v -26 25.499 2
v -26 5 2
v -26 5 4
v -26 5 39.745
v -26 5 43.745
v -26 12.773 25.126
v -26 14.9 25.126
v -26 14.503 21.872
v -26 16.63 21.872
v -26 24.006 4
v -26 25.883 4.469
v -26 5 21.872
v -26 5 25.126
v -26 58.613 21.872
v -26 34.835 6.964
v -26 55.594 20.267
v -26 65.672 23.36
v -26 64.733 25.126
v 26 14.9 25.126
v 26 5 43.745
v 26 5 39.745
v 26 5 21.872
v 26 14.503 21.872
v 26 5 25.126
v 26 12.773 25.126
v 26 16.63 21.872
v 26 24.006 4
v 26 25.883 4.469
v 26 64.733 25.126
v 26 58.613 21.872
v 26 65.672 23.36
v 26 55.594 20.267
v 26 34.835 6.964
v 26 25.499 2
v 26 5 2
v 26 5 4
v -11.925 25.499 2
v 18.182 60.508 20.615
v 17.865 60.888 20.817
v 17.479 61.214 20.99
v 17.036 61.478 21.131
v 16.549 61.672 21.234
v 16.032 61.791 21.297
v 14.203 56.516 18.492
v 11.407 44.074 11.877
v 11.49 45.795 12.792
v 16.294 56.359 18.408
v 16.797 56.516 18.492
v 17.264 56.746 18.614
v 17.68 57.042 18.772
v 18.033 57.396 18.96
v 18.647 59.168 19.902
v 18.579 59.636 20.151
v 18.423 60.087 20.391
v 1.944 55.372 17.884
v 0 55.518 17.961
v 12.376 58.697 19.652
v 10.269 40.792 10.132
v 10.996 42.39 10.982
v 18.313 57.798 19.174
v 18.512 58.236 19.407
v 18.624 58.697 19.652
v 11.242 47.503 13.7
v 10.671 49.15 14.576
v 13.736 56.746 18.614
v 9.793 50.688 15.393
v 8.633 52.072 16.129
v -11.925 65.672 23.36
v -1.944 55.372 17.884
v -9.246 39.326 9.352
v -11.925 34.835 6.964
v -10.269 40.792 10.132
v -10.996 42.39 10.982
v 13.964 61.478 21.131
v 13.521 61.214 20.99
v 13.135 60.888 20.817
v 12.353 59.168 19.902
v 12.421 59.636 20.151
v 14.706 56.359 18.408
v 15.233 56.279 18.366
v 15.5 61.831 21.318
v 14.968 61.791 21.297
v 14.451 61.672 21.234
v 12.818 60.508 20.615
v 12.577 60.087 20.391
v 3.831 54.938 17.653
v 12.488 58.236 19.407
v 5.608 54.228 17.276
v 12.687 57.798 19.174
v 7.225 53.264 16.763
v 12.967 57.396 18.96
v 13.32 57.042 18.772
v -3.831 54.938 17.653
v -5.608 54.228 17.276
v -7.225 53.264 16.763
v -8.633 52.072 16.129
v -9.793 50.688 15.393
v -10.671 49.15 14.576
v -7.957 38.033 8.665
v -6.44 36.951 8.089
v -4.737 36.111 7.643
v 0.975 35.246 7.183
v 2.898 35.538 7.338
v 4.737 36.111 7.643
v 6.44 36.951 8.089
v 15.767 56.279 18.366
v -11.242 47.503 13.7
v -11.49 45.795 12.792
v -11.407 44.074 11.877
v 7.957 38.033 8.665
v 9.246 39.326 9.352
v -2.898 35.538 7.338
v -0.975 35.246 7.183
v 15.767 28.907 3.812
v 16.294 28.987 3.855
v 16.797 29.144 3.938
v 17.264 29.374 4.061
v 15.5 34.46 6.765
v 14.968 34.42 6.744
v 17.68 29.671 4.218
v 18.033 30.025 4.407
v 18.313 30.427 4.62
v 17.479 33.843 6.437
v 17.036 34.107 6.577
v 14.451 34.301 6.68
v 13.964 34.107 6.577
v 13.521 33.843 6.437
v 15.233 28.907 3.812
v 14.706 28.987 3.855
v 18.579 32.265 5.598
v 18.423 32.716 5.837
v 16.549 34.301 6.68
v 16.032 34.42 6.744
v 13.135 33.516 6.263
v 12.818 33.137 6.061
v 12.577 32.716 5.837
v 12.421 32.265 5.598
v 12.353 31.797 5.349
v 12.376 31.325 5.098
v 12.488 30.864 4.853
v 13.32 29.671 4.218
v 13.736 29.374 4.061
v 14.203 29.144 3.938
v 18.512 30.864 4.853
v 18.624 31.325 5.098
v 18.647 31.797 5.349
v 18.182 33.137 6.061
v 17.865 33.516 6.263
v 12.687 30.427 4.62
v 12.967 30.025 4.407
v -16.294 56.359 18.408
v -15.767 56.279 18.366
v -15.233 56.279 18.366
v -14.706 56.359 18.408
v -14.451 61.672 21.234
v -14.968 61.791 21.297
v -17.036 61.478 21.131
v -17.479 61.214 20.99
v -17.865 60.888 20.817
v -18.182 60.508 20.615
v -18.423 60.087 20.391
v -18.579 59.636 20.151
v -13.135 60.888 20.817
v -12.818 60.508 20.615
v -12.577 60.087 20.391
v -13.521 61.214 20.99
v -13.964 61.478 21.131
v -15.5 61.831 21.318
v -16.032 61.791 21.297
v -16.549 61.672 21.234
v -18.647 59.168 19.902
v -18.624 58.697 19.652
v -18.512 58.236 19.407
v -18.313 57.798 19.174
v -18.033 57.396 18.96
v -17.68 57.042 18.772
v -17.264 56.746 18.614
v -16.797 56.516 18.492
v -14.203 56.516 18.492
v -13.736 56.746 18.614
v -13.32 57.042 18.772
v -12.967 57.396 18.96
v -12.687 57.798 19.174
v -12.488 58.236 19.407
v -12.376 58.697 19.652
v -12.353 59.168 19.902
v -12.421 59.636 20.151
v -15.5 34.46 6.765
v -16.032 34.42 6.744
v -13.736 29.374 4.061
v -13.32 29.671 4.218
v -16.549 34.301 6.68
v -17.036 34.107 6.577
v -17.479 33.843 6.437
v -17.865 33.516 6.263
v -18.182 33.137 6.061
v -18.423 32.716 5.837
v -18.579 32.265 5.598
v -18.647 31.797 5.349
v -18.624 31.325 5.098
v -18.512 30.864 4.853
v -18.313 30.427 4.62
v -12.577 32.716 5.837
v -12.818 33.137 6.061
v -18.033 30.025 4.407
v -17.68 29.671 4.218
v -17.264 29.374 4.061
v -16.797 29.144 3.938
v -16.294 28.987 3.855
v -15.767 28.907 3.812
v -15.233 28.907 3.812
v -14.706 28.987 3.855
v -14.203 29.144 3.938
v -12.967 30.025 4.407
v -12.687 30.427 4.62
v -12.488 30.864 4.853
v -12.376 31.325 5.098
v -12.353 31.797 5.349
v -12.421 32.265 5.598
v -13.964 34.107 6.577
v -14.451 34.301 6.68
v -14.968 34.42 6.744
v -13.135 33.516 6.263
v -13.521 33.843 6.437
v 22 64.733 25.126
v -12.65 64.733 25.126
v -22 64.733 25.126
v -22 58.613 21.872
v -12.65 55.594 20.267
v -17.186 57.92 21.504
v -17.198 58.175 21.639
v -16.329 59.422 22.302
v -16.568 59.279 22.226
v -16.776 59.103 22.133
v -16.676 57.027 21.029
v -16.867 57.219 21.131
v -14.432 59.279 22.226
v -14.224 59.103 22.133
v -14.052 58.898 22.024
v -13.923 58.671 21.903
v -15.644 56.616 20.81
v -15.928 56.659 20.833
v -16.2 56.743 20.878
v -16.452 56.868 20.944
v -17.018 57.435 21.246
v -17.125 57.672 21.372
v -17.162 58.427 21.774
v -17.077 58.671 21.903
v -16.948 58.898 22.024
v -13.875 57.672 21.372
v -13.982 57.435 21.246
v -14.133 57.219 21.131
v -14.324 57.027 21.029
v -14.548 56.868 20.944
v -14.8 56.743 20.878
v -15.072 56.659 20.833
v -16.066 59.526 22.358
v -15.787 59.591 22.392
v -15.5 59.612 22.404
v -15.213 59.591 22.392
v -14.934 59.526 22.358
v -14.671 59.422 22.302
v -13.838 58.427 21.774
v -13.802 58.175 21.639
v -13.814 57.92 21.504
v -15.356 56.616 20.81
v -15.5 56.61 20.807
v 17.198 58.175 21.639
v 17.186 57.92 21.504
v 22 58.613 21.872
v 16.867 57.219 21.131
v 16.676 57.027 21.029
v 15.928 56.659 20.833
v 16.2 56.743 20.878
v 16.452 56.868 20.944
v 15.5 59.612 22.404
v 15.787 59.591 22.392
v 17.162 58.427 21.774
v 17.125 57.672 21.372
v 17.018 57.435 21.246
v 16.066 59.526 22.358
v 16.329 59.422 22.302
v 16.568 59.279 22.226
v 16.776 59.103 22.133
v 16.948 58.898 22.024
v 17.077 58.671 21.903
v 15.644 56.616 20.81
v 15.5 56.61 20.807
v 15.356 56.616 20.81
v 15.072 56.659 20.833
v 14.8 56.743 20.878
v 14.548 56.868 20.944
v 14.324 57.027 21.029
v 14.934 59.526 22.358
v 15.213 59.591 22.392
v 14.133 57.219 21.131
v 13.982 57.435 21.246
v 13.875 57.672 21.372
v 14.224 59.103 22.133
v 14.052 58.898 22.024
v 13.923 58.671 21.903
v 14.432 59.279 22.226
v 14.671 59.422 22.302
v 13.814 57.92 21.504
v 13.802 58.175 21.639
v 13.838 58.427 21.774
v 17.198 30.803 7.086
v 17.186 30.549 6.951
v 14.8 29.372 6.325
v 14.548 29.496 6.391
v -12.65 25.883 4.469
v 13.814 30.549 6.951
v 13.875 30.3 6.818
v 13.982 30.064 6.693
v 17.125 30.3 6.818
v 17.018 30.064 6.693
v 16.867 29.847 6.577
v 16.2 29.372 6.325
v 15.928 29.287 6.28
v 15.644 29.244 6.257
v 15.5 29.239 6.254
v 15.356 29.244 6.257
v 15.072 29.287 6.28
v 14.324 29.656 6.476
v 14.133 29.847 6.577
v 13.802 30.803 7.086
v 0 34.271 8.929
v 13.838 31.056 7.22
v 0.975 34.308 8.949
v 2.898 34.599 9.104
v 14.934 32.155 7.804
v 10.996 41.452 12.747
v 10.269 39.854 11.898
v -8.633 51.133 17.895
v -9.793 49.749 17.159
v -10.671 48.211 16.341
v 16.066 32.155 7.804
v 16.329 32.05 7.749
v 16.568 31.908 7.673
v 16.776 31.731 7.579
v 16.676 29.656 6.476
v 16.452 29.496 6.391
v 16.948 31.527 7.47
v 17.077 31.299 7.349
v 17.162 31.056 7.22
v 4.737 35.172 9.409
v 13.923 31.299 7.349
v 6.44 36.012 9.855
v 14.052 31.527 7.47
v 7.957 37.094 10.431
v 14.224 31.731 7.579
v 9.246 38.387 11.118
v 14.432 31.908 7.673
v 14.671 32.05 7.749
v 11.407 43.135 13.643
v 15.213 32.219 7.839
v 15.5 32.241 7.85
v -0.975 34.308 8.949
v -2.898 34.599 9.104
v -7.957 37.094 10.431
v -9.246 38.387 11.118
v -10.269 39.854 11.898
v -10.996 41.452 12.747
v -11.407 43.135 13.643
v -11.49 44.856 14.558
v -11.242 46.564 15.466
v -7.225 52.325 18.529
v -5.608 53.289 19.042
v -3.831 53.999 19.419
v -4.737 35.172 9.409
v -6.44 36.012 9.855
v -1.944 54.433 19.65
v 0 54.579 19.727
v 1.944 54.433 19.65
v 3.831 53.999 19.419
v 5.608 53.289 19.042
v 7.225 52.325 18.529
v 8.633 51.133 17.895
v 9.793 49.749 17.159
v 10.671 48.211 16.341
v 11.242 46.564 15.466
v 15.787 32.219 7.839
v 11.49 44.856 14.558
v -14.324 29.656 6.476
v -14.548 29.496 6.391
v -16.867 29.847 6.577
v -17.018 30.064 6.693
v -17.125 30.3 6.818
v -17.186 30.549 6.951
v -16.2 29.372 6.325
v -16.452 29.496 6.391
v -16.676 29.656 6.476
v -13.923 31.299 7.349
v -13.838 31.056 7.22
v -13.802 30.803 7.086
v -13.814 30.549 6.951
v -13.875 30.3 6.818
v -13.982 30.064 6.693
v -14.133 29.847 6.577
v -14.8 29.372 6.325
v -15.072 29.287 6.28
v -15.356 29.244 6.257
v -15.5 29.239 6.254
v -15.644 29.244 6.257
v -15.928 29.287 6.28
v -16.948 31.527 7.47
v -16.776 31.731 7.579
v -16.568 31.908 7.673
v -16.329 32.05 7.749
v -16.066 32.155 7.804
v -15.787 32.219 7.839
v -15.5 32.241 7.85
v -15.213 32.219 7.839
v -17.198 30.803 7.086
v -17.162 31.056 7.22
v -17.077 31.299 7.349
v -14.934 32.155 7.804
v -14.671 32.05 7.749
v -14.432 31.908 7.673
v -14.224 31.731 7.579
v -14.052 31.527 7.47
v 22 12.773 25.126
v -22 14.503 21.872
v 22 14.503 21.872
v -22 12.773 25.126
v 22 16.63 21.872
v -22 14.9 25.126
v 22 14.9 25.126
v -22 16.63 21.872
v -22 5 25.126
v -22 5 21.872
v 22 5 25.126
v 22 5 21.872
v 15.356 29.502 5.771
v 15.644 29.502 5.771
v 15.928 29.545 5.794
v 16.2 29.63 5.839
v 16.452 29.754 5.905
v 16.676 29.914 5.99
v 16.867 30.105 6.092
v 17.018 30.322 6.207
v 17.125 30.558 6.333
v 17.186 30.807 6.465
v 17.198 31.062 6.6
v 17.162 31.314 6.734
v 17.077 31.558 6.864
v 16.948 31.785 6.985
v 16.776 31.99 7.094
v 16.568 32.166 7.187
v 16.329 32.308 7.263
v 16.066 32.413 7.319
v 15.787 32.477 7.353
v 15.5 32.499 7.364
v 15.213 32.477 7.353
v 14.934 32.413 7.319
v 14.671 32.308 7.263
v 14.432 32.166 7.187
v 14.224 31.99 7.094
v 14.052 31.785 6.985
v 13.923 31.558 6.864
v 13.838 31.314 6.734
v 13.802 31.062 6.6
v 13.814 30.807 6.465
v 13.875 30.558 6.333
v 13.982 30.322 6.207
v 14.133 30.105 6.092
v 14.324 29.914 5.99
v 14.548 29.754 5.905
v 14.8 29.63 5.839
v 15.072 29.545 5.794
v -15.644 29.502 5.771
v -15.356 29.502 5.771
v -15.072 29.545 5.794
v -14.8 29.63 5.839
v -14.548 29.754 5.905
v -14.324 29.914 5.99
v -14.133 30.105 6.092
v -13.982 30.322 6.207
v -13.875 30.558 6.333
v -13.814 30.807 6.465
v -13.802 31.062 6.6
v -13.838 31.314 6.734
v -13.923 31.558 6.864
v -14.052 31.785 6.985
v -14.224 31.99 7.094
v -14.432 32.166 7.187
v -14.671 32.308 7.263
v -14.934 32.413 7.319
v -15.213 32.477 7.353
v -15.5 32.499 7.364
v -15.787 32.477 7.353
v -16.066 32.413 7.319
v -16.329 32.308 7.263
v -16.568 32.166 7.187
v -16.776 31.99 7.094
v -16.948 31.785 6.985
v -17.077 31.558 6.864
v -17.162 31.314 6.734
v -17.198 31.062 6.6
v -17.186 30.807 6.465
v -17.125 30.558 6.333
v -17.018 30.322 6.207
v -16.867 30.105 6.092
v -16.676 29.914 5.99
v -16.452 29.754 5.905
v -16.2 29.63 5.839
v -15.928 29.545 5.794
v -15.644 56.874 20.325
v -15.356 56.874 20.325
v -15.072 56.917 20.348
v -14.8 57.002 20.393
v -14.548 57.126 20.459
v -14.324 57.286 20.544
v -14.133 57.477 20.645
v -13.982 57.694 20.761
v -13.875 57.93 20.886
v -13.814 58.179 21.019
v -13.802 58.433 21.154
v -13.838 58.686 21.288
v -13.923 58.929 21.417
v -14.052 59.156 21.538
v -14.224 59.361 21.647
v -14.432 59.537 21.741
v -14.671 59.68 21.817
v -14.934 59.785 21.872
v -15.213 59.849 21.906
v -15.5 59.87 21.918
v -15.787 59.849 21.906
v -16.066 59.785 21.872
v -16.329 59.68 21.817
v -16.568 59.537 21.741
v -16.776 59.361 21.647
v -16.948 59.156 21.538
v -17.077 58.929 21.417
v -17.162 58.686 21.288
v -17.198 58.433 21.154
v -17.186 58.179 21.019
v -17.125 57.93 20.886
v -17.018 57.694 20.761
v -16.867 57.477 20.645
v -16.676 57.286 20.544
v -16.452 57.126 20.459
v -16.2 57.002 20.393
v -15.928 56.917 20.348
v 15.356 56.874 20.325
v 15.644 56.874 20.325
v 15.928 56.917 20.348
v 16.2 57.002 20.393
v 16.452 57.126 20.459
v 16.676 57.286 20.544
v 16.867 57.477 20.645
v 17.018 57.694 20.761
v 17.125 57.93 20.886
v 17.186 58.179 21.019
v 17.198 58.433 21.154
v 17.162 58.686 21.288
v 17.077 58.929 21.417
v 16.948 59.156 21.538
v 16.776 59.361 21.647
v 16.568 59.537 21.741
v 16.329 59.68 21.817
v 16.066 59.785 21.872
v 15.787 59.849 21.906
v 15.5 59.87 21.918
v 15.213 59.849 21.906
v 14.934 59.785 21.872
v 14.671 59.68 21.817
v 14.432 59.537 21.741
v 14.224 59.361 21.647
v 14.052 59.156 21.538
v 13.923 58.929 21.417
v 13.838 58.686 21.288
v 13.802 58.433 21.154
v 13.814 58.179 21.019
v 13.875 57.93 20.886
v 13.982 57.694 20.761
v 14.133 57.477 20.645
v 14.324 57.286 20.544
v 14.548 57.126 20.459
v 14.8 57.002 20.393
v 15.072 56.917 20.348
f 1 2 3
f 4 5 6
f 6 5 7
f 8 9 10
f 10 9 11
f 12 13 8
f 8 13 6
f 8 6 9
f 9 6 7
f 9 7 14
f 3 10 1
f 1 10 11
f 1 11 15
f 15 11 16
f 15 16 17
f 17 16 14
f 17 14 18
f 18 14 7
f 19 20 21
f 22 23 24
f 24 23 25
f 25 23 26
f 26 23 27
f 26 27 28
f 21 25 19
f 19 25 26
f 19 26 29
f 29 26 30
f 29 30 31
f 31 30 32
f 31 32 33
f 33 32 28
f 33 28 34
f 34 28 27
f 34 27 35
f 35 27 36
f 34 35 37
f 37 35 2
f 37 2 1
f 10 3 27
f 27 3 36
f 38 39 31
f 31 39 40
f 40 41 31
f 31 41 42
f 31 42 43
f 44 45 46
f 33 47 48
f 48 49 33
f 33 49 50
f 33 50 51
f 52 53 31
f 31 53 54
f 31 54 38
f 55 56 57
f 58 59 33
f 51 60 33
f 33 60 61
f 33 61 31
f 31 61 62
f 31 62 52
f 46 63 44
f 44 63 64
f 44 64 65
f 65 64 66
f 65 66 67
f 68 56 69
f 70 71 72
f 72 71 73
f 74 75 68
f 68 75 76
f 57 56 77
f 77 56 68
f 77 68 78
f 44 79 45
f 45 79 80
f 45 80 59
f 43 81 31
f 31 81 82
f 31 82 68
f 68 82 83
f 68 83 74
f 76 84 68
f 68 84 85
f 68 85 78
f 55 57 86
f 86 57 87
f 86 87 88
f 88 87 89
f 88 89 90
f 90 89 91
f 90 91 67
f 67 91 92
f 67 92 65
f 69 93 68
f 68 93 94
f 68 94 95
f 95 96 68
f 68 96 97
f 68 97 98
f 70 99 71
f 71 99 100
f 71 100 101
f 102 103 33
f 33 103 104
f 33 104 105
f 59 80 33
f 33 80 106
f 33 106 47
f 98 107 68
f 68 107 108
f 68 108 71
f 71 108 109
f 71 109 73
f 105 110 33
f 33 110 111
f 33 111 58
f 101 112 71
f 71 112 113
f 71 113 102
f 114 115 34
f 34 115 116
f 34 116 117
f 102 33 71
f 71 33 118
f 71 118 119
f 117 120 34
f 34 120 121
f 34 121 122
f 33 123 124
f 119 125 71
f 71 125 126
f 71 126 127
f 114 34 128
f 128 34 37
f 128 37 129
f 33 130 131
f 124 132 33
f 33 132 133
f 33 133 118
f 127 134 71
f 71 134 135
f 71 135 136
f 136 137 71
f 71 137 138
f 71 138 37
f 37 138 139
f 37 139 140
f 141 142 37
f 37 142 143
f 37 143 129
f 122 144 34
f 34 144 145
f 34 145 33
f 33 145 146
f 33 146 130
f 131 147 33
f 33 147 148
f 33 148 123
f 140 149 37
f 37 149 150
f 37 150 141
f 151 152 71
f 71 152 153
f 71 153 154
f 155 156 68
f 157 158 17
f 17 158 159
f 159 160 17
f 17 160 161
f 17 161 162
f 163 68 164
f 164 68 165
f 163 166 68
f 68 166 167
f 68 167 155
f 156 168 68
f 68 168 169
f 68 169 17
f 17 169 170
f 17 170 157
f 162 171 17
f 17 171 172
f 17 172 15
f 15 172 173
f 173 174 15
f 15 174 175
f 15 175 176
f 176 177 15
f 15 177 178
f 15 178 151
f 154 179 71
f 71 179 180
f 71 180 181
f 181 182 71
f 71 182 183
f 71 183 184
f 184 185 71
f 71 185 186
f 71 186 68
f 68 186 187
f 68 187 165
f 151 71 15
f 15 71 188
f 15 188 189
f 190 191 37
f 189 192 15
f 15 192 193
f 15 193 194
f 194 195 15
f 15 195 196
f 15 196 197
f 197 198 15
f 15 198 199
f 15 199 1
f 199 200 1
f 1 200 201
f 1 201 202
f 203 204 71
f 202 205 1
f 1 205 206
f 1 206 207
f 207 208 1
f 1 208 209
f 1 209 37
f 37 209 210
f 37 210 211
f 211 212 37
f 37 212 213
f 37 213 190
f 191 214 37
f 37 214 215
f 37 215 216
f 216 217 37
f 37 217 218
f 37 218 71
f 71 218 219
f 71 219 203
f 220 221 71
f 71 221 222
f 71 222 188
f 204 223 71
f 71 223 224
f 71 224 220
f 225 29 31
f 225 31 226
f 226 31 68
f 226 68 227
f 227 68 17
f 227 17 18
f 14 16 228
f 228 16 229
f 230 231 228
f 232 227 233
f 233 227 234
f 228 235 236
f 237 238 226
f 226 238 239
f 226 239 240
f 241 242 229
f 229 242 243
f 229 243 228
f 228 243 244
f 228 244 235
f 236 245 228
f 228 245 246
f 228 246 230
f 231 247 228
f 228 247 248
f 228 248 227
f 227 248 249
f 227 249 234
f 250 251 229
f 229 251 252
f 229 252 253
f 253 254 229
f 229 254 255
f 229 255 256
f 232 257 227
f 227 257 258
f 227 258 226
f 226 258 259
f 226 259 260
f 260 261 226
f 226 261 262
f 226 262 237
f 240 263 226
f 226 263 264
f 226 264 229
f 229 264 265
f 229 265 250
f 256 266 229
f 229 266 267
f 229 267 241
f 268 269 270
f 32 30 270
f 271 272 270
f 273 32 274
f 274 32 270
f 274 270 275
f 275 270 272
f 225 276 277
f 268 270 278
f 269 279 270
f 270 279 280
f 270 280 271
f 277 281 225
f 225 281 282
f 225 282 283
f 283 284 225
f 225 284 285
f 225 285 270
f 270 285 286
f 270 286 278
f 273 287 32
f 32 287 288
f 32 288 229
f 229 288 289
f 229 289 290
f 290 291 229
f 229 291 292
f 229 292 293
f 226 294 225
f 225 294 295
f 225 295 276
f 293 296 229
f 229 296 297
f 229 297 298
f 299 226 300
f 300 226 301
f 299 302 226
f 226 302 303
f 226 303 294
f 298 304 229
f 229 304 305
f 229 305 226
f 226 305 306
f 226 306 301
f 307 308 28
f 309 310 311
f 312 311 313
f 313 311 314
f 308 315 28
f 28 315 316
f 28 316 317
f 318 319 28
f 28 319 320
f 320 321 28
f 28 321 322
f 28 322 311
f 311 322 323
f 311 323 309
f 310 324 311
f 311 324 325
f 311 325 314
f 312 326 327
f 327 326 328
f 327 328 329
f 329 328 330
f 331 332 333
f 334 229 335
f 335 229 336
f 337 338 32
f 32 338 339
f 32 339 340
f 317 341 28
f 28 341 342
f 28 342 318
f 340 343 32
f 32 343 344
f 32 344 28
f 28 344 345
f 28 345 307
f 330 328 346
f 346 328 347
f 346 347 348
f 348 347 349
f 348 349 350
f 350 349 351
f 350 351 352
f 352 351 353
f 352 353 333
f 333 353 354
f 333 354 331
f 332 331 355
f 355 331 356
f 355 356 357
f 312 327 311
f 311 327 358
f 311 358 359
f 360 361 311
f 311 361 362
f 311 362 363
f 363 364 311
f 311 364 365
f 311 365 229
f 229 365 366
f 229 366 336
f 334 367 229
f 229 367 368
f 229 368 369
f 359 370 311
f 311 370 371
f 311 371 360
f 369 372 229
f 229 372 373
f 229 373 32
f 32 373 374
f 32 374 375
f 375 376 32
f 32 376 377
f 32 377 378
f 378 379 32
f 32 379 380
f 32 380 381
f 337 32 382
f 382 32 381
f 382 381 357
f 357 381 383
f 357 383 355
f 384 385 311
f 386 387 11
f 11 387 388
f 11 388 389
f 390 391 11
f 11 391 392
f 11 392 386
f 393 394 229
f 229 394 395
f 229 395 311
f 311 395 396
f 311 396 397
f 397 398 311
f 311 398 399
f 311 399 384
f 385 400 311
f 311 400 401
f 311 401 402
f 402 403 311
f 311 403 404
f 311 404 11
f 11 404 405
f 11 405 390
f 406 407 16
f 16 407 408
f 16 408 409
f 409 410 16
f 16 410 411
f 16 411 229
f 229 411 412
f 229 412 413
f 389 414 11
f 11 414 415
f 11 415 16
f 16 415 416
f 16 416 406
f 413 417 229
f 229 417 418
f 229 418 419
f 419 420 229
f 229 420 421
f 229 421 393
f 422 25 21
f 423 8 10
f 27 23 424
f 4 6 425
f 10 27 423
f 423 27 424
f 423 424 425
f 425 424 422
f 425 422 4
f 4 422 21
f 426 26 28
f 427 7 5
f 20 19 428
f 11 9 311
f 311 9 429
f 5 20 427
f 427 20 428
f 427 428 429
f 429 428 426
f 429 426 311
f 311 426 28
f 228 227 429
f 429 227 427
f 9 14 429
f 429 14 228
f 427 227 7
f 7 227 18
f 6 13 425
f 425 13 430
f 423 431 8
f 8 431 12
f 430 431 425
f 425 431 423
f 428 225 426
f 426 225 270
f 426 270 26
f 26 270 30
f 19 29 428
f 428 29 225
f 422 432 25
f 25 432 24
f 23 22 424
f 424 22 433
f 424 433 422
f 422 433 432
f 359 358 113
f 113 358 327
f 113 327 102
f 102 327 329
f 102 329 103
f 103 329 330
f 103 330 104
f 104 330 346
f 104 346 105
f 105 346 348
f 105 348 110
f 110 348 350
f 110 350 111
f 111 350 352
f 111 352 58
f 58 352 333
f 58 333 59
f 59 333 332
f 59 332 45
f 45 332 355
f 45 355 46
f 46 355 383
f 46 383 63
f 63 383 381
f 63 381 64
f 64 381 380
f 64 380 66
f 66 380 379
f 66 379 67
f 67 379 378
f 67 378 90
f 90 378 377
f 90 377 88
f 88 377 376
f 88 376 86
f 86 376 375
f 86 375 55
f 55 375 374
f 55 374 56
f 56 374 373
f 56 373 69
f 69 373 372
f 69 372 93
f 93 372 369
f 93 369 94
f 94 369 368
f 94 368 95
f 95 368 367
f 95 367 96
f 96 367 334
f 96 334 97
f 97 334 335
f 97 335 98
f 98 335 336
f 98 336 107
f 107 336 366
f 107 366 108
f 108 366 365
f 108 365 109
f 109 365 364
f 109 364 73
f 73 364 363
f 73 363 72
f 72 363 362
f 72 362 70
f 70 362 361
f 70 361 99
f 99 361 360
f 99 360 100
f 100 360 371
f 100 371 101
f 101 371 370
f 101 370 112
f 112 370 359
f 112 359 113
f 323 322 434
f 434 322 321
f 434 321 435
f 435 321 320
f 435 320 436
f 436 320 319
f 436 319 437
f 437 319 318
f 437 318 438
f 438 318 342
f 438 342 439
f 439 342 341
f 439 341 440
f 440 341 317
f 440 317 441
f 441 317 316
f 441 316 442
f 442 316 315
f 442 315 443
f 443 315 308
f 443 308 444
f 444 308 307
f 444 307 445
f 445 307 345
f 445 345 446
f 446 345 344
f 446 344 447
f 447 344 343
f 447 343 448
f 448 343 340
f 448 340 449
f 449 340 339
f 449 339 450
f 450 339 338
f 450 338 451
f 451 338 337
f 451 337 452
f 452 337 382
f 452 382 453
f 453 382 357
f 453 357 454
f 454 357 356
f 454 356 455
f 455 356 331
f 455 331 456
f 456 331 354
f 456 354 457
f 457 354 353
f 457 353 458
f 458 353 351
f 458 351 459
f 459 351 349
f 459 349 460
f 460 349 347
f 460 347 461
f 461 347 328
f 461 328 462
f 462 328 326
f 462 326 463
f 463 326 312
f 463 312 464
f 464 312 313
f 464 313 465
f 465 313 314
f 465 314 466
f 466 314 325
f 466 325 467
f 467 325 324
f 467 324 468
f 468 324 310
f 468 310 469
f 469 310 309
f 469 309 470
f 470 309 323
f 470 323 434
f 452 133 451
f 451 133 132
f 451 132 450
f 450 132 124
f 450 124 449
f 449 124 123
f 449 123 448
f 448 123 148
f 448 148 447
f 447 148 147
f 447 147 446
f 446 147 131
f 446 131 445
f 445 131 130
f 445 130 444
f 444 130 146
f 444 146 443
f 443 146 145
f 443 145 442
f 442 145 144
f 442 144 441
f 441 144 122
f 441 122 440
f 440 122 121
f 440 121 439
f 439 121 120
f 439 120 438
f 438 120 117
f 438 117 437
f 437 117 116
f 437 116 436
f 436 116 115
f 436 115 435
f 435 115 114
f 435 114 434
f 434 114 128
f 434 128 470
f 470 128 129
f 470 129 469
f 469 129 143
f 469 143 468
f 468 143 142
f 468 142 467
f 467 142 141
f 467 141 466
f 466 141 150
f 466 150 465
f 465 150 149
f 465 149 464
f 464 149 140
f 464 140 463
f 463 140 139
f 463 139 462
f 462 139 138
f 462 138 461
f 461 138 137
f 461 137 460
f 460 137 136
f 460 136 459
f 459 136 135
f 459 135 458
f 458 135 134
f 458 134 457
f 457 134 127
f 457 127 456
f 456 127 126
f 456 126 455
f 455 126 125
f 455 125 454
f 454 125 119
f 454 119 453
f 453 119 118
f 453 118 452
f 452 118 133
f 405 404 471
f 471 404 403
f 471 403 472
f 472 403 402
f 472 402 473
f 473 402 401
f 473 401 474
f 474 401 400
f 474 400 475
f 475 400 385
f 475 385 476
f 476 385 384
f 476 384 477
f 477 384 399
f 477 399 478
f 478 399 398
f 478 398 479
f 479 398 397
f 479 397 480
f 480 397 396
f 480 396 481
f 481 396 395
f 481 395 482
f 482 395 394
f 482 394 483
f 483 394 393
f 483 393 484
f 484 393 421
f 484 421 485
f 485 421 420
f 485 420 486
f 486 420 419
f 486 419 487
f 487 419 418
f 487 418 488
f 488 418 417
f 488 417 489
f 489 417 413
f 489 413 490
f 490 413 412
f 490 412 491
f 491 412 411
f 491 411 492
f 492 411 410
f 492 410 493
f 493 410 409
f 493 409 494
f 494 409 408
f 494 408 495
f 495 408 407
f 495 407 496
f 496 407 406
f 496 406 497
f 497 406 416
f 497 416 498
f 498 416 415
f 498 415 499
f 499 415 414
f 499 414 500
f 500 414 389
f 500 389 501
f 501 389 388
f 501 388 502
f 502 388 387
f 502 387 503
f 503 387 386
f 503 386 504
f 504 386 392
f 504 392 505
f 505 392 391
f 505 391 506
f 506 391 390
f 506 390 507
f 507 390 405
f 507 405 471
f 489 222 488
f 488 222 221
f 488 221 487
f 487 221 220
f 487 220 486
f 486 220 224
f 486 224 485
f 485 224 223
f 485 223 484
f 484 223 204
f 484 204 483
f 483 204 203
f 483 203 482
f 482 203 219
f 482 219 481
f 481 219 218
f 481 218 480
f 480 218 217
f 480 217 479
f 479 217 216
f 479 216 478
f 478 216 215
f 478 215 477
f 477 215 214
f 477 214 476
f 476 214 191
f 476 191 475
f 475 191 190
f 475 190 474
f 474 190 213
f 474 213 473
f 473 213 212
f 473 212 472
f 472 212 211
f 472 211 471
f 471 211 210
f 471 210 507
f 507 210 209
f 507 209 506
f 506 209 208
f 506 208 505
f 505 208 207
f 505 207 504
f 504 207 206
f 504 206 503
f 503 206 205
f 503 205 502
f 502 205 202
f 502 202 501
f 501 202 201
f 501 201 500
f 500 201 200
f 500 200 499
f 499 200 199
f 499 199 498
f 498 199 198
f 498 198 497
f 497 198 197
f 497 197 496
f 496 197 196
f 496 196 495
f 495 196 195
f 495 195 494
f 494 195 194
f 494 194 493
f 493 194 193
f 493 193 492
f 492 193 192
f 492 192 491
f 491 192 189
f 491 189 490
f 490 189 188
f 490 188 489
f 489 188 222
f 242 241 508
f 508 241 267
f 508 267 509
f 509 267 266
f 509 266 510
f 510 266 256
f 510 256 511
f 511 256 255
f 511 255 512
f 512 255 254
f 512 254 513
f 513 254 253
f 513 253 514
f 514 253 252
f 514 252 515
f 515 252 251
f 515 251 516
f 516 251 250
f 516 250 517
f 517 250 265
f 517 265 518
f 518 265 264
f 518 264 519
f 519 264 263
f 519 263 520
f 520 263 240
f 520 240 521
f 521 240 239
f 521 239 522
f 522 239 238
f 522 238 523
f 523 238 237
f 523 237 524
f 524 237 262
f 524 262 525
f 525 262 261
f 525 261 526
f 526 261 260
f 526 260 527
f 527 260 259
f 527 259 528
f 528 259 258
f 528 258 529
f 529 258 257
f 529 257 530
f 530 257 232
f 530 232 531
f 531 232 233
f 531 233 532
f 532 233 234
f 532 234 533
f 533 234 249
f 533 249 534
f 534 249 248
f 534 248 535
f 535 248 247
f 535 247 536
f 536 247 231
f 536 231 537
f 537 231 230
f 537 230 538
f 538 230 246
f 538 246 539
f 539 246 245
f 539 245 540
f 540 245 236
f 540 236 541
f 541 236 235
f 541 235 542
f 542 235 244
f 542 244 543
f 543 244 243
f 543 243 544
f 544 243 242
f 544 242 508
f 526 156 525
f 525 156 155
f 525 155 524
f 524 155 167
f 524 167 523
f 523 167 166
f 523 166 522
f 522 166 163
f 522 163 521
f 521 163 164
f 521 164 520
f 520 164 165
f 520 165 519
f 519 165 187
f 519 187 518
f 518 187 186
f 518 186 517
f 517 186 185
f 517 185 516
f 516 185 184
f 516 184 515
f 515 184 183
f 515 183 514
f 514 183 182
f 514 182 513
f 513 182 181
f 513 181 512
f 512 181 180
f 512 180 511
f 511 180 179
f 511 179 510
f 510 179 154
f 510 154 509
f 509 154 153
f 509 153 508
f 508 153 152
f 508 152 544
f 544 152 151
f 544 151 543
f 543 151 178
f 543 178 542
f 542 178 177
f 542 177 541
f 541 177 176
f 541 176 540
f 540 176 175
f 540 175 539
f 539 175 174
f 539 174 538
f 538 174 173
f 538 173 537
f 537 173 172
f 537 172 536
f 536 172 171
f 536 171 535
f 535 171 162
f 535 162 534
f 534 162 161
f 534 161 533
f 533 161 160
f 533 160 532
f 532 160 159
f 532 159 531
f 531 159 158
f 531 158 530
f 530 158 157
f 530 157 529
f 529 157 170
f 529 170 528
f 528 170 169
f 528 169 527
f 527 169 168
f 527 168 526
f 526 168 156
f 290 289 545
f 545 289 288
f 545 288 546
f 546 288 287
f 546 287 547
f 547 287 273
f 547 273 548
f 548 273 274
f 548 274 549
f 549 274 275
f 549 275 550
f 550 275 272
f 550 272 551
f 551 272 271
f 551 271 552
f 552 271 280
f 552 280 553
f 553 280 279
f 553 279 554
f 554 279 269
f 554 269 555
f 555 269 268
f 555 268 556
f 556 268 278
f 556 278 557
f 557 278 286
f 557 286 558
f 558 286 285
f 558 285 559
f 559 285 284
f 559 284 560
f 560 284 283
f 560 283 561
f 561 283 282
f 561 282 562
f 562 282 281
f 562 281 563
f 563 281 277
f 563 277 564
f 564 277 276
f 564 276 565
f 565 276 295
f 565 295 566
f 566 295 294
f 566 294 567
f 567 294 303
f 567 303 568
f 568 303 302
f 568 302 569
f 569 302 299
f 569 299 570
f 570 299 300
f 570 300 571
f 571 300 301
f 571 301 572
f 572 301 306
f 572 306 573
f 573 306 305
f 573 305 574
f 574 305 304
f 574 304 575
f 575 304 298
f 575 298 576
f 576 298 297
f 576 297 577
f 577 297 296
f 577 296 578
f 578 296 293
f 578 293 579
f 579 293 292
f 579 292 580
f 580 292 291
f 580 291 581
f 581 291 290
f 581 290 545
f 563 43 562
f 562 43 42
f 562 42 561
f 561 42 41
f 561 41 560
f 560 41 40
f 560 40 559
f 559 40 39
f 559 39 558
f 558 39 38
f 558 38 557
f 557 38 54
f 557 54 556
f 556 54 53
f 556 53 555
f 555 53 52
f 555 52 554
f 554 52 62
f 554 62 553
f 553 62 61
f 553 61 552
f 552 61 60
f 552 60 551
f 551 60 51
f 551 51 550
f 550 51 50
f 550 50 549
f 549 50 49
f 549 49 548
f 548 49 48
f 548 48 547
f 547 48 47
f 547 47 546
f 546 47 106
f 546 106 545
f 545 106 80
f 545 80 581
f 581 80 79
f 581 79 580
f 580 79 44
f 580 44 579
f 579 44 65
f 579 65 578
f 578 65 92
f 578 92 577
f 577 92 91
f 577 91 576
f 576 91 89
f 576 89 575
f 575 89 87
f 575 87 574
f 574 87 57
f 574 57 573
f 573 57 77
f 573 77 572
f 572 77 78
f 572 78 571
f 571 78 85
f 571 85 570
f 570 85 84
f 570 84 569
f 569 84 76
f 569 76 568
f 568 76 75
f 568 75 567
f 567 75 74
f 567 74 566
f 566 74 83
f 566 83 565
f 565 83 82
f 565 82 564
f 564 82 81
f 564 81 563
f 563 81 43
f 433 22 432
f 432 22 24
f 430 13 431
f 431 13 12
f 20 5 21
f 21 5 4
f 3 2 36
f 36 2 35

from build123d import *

# Parameters (mm, degrees)
SKETCH1_W                                           = 52
SKETCH1_H                                           = 100
BOSS_EXTRUDE1_DEPTH                                 = 5
BOSS_EXTRUDE3_DEPTH                                 = 2.5
SKETCH7_R                                           = 2.25
BOSS_EXTRUDE4_DEPTH                                 = 2.5
FILLET2_R                                           = 0.25
SKETCH9_W                                           = 52
SKETCH9_H                                           = 2
BOSS_EXTRUDE5_DEPTH                                 = 50
BOSS_EXTRUDE7_DEPTH                                 = 52
CUT_EXTRUDE3_DEPTH                                  = 52
CUT_EXTRUDE4_DEPTH                                  = 2.5
BOSS_EXTRUDE8_DEPTH                                 = 52
BOSS_EXTRUDE9_DEPTH                                 = 4
LPATTERN1_COUNT                                     = 2
LPATTERN1_PITCH                                     = 48
SKETCH18_R                                          = 11.5
CUT_EXTRUDE5_DEPTH                                  = 2
CSK_FOR_M3_COUNTERSUNK_FLAT_HEAD_SCREW1_D           = 3.4
CSK_FOR_M3_COUNTERSUNK_FLAT_HEAD_SCREW1_DEPTH       = 5
CSK_FOR_M3_COUNTERSUNK_FLAT_HEAD_SCREW1_CSINK_D     = 6.3
CSK_FOR_M3_COUNTERSUNK_FLAT_HEAD_SCREW1_CSINK_ANGLE = 90
CSK_FOR_M3_COUNTERSUNK_FLAT_HEAD_SCREW1_TIP         = 1.021463052
BOSS_EXTRUDE10_DEPTH                                = 5
SKETCH23_R                                          = 1.75
CUT_EXTRUDE6_DEPTH                                  = 5
SKETCH24_W                                          = 6.6
SKETCH24_H                                          = 5.6
CUT_EXTRUDE7_DEPTH                                  = 2.5
SKETCH25_W                                          = 75
SKETCH25_H                                          = 5
SKETCH25_W_2                                        = 28.673992526
SKETCH25_H_2                                        = 8.232083525
CUT_EXTRUDE8_DEPTH                                  = 88


with BuildPart() as part:
    # Sketch1 → Boss-Extrude1 (new body)
    with BuildSketch(Plane(origin=(0, 0, 0), x_dir=(1, 0, 0), z_dir=(0, 1, 0))):
        Rectangle(SKETCH1_W, SKETCH1_H)
    extrude(amount=BOSS_EXTRUDE1_DEPTH)

    # Sketch2 → Boss-Extrude3 (add)
    with BuildSketch(Plane(origin=(0, 5, 0), x_dir=(1, 0, 0), z_dir=(0, 1, 0))):
        with BuildLine():
            Line((-26, 50), (26, 50))
            Line((26, 50), (26, 30))
            ThreePointArc((26, 30), (0, 22.708313008), (-26, 30))
            Line((-26, 30), (-26, 50))
        make_face()
    extrude(amount=BOSS_EXTRUDE3_DEPTH)

    # Sketch7 → Boss-Extrude4 (add)
    with BuildSketch(Plane(origin=(0, 7.5, 0), x_dir=(1, 0, 0), z_dir=(0, 1, 0))):
        with Locations((-7.5, 40.5)):
            Circle(SKETCH7_R)
        with Locations((7.5, 40.5)):
            Circle(SKETCH7_R)
    extrude(amount=BOSS_EXTRUDE4_DEPTH)

    # Fillet2
    fillet2_edges = [part.edges().sort_by_distance(p)[0] for p in [
        (-9.75, 10, -40.5),
        (5.25, 10, -40.5),
    ]]
    fillet(fillet2_edges, radius=FILLET2_R)

    # Sketch9 → Boss-Extrude5 (add)
    with BuildSketch(Plane(origin=(0, 5, 0), x_dir=(1, 0, 0), z_dir=(0, 1, 0))):
        with Locations((0, -3)):
            Rectangle(SKETCH9_W, SKETCH9_H)
    extrude(amount=BOSS_EXTRUDE5_DEPTH)

    # Sketch10 → Boss-Extrude7 (add)
    with BuildSketch(Plane.ZY.offset(26)):
        Polygon((4, 25), (25.126220325, 64.732641679), (23.36032514, 65.671584804), (4, 29.260108936), align=None)
    extrude(amount=-BOSS_EXTRUDE7_DEPTH)

    # Sketch11 → Cut-Extrude3 (cut)
    with BuildSketch(Plane.ZY.offset(26)):
        Polygon((4, 29.260108936), (2, 25.498656006), (2, 55), (4, 55), align=None)
    extrude(amount=-CUT_EXTRUDE3_DEPTH, mode=Mode.SUBTRACT)

    # Sketch13 → Cut-Extrude4 (cut)
    with BuildSketch(Plane(origin=(0, 7.5, 0), x_dir=(1, 0, 0), z_dir=(0, 1, 0))):
        with BuildLine():
            Line((-14.75, 24.933450371), (-14.75, 50))
            Line((-14.75, 50), (-26, 50))
            Line((-26, 50), (-26, 30))
            ThreePointArc((-26, 30), (-20.531880242, 27.118381074), (-14.75, 24.933450371))
        make_face()
        with BuildLine():
            Line((26, 50), (14.75, 50))
            Line((14.75, 50), (14.75, 24.933450371))
            ThreePointArc((14.75, 24.933450371), (20.531880242, 27.118381074), (26, 30))
            Line((26, 30), (26, 50))
        make_face()
    extrude(amount=-CUT_EXTRUDE4_DEPTH, mode=Mode.SUBTRACT)

    # Sketch16 → Boss-Extrude8 (add)
    with BuildSketch(Plane.ZY.offset(26)):
        Polygon((4.469471563, 25.882947593), (43.744583775, 5), (39.744583775, 5), (4, 24.005732324), (4, 25), align=None)
    extrude(amount=-BOSS_EXTRUDE8_DEPTH)

    # Sketch17 → Boss-Extrude9 (add)
    with BuildSketch(Plane.ZY.offset(26)):
        Polygon((25.126220325, 64.732641679), (25.126220325, 5), (21.872291888, 5), (21.872291888, 58.612892349), align=None)
    boss_extrude9 = extrude(amount=-BOSS_EXTRUDE9_DEPTH)

    # LPattern1: Boss-Extrude9 ×2
    with Locations(*[(i * LPATTERN1_PITCH, 0, 0) for i in range(1, LPATTERN1_COUNT)]):
        add(boss_extrude9)

    # Sketch18 → Cut-Extrude5 (cut)
    with BuildSketch(Plane(origin=(0, 4.790956687, -9.010479036), x_dir=(-1, 0, 0), z_dir=(0, 0.469471563, -0.882947593))):
        with Locations((0, 45.951576073)):
            Circle(SKETCH18_R)
    extrude(amount=-CUT_EXTRUDE5_DEPTH, mode=Mode.SUBTRACT)

    # CSK for M3 Countersunk Flat Head Screw1
    with Locations(Plane(origin=(0, 4.790956687, -9.010479036), x_dir=(-1, 0, 0), z_dir=(0, 0.469471563, -0.882947593))):
        with Locations((-15.5, 61.45224807), (15.5, 61.45224807), (15.5, 30.45224807), (-15.5, 30.45224807)):
            CounterSinkHole(CSK_FOR_M3_COUNTERSUNK_FLAT_HEAD_SCREW1_D / 2, CSK_FOR_M3_COUNTERSUNK_FLAT_HEAD_SCREW1_CSINK_D / 2, depth=CSK_FOR_M3_COUNTERSUNK_FLAT_HEAD_SCREW1_DEPTH, counter_sink_angle=CSK_FOR_M3_COUNTERSUNK_FLAT_HEAD_SCREW1_CSINK_ANGLE)
            with Locations((0, 0, -(CSK_FOR_M3_COUNTERSUNK_FLAT_HEAD_SCREW1_DEPTH + CSK_FOR_M3_COUNTERSUNK_FLAT_HEAD_SCREW1_TIP / 2))):  # 118° drill point
                Cone(0, CSK_FOR_M3_COUNTERSUNK_FLAT_HEAD_SCREW1_D / 2, CSK_FOR_M3_COUNTERSUNK_FLAT_HEAD_SCREW1_TIP, mode=Mode.SUBTRACT)

    # Sketch22 → Boss-Extrude10 (add)
    with BuildSketch(Plane.XZ):
        Polygon((26, 75), (-61, 75), (-61, 0), (-26, 0), (-26, 50), (26, 50), align=None)
    extrude(amount=-BOSS_EXTRUDE10_DEPTH)

    # Sketch23 → Cut-Extrude6 (cut)
    with BuildSketch(Plane(origin=(0, 5, 0), x_dir=(1, 0, 0), z_dir=(0, 1, 0))):
        with Locations((-31.5, -5.5)):
            Circle(SKETCH23_R)
        with Locations((-55.5, -5.5)):
            Circle(SKETCH23_R)
        with Locations((-55.5, -69.5)):
            Circle(SKETCH23_R)
        with Locations((-31.5, -69.5)):
            Circle(SKETCH23_R)
    extrude(amount=-CUT_EXTRUDE6_DEPTH, mode=Mode.SUBTRACT)

    # Sketch24 → Cut-Extrude7 (cut)
    with BuildSketch(Plane.XZ):
        with Locations((-31.5, 69.5)):
            Rectangle(SKETCH24_W, SKETCH24_H)
        with Locations((-55.5, 69.5)):
            Rectangle(SKETCH24_W, SKETCH24_H)
        with Locations((-31.5, 5.5)):
            Rectangle(SKETCH24_W, SKETCH24_H)
        with Locations((-55.5, 5.5)):
            Rectangle(SKETCH24_W, SKETCH24_H)
    extrude(amount=-CUT_EXTRUDE7_DEPTH, mode=Mode.SUBTRACT)

    # Sketch25 → Cut-Extrude8 (cut, through all)
    with BuildSketch(Plane.ZY.offset(61)):
        Polygon((0, 0), (0, 5), (-21.326007474, 5), (-50, 5), (-50, 0), align=None)
        with Locations((37.5, 2.5)):
            Rectangle(SKETCH25_W, SKETCH25_H)
        with Locations((-35.663003737, 9.116041763)):
            Rectangle(SKETCH25_W_2, SKETCH25_H_2)
    extrude(amount=-CUT_EXTRUDE8_DEPTH, mode=Mode.SUBTRACT)


solid = part.part
